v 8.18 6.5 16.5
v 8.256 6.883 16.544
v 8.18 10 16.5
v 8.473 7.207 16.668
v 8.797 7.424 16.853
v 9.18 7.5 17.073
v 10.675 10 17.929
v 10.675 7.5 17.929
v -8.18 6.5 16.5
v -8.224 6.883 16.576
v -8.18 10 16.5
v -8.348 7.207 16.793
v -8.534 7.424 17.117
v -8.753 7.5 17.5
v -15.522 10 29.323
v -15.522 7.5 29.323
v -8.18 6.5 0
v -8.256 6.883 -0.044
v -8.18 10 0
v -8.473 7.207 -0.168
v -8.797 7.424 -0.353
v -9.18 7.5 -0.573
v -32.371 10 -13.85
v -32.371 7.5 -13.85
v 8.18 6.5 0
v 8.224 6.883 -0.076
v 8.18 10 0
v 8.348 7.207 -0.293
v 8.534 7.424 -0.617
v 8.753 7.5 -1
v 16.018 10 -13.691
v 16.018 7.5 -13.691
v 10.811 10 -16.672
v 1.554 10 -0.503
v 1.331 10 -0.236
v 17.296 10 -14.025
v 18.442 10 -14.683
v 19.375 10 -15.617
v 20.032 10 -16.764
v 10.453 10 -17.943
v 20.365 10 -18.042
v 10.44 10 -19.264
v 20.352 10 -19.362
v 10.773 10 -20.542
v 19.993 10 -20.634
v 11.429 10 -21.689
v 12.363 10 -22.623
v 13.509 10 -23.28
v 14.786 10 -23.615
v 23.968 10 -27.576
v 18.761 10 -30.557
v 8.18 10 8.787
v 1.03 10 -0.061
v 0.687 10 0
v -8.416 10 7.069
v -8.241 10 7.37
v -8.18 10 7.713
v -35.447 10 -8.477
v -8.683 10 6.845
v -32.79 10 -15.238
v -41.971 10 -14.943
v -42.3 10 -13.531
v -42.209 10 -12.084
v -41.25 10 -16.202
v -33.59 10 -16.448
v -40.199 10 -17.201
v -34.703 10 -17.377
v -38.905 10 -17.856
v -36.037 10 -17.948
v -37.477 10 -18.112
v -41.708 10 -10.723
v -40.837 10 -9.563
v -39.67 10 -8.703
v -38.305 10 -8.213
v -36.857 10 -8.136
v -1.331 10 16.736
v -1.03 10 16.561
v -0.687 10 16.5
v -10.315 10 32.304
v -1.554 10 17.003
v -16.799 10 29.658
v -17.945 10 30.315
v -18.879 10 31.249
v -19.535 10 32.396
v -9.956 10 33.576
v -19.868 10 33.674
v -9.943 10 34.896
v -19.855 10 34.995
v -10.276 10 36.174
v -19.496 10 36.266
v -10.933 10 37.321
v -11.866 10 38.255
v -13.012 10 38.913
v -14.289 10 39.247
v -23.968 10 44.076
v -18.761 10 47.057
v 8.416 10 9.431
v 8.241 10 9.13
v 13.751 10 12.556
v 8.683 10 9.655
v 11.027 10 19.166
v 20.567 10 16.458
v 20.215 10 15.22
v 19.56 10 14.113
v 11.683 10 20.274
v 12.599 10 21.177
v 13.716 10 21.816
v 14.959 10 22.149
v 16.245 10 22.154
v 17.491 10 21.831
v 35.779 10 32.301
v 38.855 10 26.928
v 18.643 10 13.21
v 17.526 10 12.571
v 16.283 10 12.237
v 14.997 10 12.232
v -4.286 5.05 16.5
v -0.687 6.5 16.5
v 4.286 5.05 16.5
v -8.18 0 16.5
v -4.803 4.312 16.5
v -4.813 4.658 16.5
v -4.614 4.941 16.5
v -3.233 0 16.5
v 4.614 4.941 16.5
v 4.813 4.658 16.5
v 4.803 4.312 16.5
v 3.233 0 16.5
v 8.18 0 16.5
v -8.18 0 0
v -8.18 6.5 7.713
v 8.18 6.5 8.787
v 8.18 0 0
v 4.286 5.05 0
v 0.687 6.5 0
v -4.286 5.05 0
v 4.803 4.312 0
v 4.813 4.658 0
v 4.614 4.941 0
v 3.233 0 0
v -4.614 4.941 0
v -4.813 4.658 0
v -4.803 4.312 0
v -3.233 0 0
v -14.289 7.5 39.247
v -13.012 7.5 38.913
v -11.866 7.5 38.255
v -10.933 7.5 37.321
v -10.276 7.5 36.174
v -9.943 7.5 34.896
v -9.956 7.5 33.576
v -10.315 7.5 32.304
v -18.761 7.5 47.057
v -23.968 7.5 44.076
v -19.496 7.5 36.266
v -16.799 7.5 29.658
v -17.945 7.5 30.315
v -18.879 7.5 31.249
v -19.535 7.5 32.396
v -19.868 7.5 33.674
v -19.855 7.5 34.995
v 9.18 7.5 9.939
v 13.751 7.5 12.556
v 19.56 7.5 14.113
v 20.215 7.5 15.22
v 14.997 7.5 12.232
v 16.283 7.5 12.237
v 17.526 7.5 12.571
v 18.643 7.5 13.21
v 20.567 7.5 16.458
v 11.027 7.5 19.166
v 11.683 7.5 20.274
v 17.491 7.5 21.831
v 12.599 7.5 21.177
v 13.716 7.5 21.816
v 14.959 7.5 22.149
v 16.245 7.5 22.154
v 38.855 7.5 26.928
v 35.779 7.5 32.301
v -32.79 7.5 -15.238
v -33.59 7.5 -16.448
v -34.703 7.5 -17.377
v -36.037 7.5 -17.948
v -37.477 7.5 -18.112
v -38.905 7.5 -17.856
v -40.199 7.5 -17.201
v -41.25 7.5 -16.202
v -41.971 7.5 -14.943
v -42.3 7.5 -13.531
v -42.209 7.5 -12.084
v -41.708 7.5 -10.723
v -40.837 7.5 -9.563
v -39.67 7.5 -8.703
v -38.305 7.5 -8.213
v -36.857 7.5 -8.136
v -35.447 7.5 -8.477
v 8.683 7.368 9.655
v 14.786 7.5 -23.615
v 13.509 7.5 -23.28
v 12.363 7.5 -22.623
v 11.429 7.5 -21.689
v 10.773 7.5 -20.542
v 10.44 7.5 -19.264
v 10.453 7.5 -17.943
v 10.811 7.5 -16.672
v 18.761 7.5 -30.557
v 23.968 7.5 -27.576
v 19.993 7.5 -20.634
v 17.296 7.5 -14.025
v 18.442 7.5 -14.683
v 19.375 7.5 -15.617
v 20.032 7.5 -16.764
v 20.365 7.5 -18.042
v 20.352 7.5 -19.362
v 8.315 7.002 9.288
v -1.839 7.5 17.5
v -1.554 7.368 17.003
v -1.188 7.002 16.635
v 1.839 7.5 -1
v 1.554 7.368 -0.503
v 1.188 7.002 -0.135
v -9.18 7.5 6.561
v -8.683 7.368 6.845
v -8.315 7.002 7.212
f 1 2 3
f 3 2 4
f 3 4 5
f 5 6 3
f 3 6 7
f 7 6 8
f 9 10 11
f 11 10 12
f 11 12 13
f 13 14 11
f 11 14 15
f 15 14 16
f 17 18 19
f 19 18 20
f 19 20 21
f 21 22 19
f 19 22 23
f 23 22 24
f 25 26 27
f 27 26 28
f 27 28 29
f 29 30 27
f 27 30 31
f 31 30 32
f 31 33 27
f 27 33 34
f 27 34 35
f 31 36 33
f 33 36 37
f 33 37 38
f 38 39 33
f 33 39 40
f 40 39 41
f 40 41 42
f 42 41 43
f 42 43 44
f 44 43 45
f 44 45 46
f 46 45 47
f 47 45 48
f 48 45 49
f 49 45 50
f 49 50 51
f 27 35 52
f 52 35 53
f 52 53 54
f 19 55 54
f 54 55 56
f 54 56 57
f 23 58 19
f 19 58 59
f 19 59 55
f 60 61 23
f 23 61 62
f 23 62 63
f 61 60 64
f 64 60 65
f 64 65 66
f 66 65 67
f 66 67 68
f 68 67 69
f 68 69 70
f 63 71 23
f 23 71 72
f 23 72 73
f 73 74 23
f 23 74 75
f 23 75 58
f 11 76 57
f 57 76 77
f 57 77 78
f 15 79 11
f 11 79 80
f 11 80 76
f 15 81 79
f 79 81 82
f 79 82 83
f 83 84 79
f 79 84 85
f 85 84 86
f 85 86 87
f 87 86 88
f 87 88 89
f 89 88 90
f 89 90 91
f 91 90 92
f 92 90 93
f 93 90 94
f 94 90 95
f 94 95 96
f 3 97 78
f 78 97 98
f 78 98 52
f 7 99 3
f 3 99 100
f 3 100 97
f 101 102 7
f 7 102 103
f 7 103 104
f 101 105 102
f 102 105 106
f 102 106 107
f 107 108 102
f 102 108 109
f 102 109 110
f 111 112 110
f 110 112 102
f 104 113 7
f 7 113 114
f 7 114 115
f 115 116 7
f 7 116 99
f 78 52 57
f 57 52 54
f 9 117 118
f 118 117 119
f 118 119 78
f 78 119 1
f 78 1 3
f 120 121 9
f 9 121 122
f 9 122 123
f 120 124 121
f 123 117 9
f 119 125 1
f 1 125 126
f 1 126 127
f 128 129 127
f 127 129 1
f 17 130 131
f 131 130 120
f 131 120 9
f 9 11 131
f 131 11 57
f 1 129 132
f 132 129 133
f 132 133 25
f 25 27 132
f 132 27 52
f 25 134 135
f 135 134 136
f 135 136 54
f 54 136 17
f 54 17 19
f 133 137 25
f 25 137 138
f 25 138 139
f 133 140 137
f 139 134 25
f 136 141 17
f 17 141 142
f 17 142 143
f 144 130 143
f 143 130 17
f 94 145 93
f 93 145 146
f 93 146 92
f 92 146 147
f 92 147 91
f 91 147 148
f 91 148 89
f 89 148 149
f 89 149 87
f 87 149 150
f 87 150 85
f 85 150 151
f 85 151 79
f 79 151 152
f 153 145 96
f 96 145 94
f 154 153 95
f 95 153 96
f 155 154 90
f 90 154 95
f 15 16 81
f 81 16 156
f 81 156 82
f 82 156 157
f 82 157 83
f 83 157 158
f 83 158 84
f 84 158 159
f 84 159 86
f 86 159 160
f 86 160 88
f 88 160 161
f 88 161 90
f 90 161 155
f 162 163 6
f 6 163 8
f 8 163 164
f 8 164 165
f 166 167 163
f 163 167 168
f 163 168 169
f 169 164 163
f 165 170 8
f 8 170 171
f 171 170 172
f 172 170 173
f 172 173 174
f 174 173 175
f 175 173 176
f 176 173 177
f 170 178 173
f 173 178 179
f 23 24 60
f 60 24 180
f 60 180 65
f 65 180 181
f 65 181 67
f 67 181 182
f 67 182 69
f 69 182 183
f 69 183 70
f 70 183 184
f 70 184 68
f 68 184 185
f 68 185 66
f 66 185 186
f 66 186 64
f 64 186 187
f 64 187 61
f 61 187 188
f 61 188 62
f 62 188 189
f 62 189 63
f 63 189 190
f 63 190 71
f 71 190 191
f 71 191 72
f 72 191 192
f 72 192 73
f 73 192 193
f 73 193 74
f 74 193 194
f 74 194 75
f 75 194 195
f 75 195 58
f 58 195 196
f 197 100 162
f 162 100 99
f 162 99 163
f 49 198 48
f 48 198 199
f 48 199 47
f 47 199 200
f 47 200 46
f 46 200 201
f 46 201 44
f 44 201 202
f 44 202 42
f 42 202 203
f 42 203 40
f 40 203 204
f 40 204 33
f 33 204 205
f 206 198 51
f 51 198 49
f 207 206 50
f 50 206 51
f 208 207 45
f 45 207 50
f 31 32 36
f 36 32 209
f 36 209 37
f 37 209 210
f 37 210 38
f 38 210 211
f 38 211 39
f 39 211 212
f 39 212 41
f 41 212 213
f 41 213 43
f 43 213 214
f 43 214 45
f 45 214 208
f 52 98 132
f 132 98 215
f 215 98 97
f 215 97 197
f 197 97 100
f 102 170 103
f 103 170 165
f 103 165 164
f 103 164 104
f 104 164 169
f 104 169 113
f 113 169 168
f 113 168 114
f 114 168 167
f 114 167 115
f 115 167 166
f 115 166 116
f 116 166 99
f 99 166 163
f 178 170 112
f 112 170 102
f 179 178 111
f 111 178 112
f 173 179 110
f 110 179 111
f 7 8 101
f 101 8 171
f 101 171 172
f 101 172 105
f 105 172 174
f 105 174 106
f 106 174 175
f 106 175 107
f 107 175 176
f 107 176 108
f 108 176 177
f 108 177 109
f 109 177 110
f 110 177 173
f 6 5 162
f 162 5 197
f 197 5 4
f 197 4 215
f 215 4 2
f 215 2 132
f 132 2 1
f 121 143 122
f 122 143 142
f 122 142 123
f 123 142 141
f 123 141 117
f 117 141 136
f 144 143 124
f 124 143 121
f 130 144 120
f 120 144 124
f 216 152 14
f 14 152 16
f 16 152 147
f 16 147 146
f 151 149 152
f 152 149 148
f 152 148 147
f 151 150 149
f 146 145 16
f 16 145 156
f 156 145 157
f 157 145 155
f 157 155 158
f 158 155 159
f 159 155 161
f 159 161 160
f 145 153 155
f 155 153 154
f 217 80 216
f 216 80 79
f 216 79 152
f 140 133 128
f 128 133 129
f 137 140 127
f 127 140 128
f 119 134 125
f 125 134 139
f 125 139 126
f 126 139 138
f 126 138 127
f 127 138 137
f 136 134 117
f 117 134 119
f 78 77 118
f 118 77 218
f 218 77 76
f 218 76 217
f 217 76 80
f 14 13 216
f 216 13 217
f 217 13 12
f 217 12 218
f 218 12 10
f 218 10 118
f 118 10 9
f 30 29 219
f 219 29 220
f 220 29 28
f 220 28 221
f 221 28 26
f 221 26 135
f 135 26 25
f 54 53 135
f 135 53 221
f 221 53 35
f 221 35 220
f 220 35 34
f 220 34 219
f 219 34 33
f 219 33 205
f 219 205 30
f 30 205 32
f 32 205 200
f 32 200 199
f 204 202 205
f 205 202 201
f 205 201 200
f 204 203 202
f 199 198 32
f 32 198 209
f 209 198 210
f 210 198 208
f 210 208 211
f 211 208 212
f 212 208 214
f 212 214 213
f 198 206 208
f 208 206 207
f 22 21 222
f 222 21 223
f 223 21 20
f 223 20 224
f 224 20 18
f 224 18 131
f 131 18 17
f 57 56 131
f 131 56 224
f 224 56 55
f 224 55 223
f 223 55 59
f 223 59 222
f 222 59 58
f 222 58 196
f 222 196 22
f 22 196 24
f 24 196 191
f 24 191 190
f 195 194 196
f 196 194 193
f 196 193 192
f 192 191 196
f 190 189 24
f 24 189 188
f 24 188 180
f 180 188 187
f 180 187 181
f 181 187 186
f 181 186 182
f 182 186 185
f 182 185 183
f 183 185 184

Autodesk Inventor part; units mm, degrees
ref_plane "YZ Plane" through (0, 0, 0) normal (1, 0, 0) x (0, 1, 0)
ref_plane "XZ Plane" through (0, 0, 0) normal (0, 1, 0) x (-1, 0, 0)
ref_plane "XY Plane" through (0, 0, 0) normal (0, 0, 1) x (1, 0, 0)
sketch "Sketch1" plane through (0, 0, 0) normal (0, 0, 1) x (1, 0, 0)
  line L0 (0, 5) -> (4.285926, 5)
  line L1 (4.755772, 4.32899) -> (3.180149, 0)
  line L2 (3.180149, 0) -> (0, 0)
  line L3 (0, 5) -> (-4.285926, 5)
  line L4 (-4.755772, 4.32899) -> (-3.180149, 0)
  line L5 (-3.180149, 0) -> (0, 0)
  arc A0 (-4.285926, 5) -> (-4.755772, 4.32899) centre (-4.285926, 4.5) ccw
  arc A1 (4.755772, 4.32899) -> (4.285926, 5) centre (4.285926, 4.5) ccw
  line L6 (4.285926, 5.05) -> (0, 5.05)
  line L7 (0, 5.05) -> (-4.285926, 5.05)
  arc A2 (-4.285926, 5.05) -> (-4.802757, 4.311889) centre (-4.285926, 4.5) ccw
  line L8 (-4.802757, 4.311889) -> (-3.215159, -0.05)
  line L9 (-3.215159, -0.05) -> (0, -0.05)
  line L10 (0, -0.05) -> (3.215159, -0.05)
  line L11 (3.215159, -0.05) -> (4.802757, 4.311889)
  arc A3 (4.802757, 4.311889) -> (4.285926, 5.05) centre (4.285926, 4.5) ccw
  line L12 (-3.180149, 0) -> (-8.180149, 0)
  line L13 (-8.180149, 0) -> (-8.180149, 7.5)
  line L14 (3.180149, 0) -> (8.180149, 0)
  line L15 (8.180149, 0) -> (8.180149, 7.5)
  line L16 (8.180149, 7.5) -> (-8.180149, 7.5)
  point P0 (5, 5)
  point P1 (-5, 5)
  point P2 (3.233358, 0)
  point P3 (-3.233358, 0)
  dimension "d0" = 5
  dimension "d1" = 5
  dimension "d2" = 70
  dimension "d3" = 5
  dimension "d4" = 70
  dimension "d5" = 0.5
  dimension "d6" = 0.05
  dimension "d7" = 5
  dimension "d8" = 7.5
  dimension "d9" = 5
extrude "Extrusion1" add sketch "Sketch1" along normal blind 16.5 contours L11 A3 L6 L7 A2 L8 L12 L13 L16 L15 L14
sketch "Sketch2" plane through (-8.180149, 7.5, 0) normal (0, 1, 0) x (1, 0, 0)
  line L0 (-10.580957, -47.057485) -> (32.148268, 27.576377)
  line L1 (32.148268, 27.576377) -> (26.941254, 30.557485)
  line L2 (26.941254, 30.557485) -> (-15.78797, -44.076377)
  line L3 (-15.78797, -44.076377) -> (-10.580957, -47.057485)
  line L4 (-10.580957, -47.057485) -> (26.941254, 30.557485) construction
  line L5 (32.148268, 27.576377) -> (-15.78797, -44.076377) construction
  circle A0 centre (-6.725395, -34.285068) radius 5
  circle A1 centre (23.582544, 18.652904) radius 5
  line L6 (-13.184463, -45.566931) -> (29.544761, 29.066931) construction
  line L7 (16.360298, -16.5) -> (0, -16.5) construction
  line L8 (0, 0) -> (16.360298, -16.5) construction
  line L9 (16.360298, 0) -> (0, 0) construction
  line L10 (16.360298, -16.5) -> (16.360298, 0) construction
  line L11 (16.360298, 0) -> (0.368439, -15.856459) construction
  line L12 (-30.674699, 10.428379) -> (-27.598866, 15.800845)
  line L13 (-27.598866, 15.800845) -> (47.034997, -26.928379)
  line L14 (47.034997, -26.928379) -> (43.959163, -32.300845)
  line L15 (43.959163, -32.300845) -> (-30.674699, 10.428379)
  line L16 (-30.674699, 10.428379) -> (47.034997, -26.928379) construction
  line L17 (-27.598866, 15.800845) -> (43.959163, -32.300845) construction
  circle A2 centre (-29.136782, 13.114612) radius 5
  circle A3 centre (23.80119, -17.193326) radius 5
  line L18 (-29.136782, 13.114612) -> (45.49708, -29.614612)
  point P0 (8.180149, 0)
  point P1 (8.180149, -8.25)
  point P2 (8.180149, -8.25)
  point P3 (-24.191137, 13.849859)
  point P4 (-27.26697, 8.477393)
  point P5 (4.038725, -9.445679)
  point P6 (-7.341496, -29.323171)
  point P7 (-11.316307, -36.265856)
  point P8 (-6.109293, -39.246965)
  point P9 (-2.134482, -32.30428)
  point P10 (9.245739, -12.426788)
  point P11 (18.855544, -17.928573)
  point P12 (25.671002, -21.830545)
  point P13 (28.746835, -16.458079)
  point P14 (21.931377, -12.556107)
  point P15 (12.321572, -7.054321)
  point P16 (24.198645, 13.691007)
  point P17 (28.173456, 20.633692)
  point P18 (22.966443, 23.614801)
  point P19 (18.991631, 16.672116)
  point P20 (7.114559, -4.073212)
  dimension "d12" = 86
  dimension "d13" = 6
  dimension "d14" = 10
  dimension "d15" = 10
  dimension "d16" = 61
  dimension "d17" = 12
  dimension "d19" = 86
  dimension "d20" = 10
  dimension "d21" = 10
  dimension "d22" = 61
  dimension "d26" = 90
extrude "Extrusion2" add sketch "Sketch2" along normal blind 2.5
sketch "Sketch3" plane through (-8.180149, 7.5, 0) normal (0, 1, 0) x (1, 0, 0)
  line L0 (0, -7.133436) -> (0, -16.5)
  line L1 (9.446546, 0) -> (0, 0)
  line L2 (16.360298, 0) -> (16.360298, -9.366564)
  line L3 (16.360298, -16.5) -> (6.913752, -16.5)
  line L4 (0, 0) -> (4.946791, 0)
  line L5 (0, 0) -> (16.360298, 0)
  line L6 (16.360298, 0) -> (16.360298, -16.5)
  line L7 (16.360298, -16.5) -> (0, -16.5)
  line L8 (0, -16.5) -> (0, 0)
  point P0 (8.180149, 0)
  point P1 (0, -16.418433)
  point P2 (16.360298, -0.081567)
  point P3 (0, -16.418433)
  point P4 (16.360298, -0.081567)
extrude "Extrusion3" add sketch "Sketch3" along normal blind 2.5
fillet "Fillet1" radius 1 8 edges at (4.7233, 7.5, 0) (1.2664, 8.75, 0) (-8.1801, 7.5, 3.5667) (-8.1801, 8.75, 7.1334) (-4.7233, 7.5, 16.5) (-1.2664, 8.75, 16.5) (8.1801, 7.5, 12.9333) (8.1801, 8.75, 9.3666)
properties part number "female1"
